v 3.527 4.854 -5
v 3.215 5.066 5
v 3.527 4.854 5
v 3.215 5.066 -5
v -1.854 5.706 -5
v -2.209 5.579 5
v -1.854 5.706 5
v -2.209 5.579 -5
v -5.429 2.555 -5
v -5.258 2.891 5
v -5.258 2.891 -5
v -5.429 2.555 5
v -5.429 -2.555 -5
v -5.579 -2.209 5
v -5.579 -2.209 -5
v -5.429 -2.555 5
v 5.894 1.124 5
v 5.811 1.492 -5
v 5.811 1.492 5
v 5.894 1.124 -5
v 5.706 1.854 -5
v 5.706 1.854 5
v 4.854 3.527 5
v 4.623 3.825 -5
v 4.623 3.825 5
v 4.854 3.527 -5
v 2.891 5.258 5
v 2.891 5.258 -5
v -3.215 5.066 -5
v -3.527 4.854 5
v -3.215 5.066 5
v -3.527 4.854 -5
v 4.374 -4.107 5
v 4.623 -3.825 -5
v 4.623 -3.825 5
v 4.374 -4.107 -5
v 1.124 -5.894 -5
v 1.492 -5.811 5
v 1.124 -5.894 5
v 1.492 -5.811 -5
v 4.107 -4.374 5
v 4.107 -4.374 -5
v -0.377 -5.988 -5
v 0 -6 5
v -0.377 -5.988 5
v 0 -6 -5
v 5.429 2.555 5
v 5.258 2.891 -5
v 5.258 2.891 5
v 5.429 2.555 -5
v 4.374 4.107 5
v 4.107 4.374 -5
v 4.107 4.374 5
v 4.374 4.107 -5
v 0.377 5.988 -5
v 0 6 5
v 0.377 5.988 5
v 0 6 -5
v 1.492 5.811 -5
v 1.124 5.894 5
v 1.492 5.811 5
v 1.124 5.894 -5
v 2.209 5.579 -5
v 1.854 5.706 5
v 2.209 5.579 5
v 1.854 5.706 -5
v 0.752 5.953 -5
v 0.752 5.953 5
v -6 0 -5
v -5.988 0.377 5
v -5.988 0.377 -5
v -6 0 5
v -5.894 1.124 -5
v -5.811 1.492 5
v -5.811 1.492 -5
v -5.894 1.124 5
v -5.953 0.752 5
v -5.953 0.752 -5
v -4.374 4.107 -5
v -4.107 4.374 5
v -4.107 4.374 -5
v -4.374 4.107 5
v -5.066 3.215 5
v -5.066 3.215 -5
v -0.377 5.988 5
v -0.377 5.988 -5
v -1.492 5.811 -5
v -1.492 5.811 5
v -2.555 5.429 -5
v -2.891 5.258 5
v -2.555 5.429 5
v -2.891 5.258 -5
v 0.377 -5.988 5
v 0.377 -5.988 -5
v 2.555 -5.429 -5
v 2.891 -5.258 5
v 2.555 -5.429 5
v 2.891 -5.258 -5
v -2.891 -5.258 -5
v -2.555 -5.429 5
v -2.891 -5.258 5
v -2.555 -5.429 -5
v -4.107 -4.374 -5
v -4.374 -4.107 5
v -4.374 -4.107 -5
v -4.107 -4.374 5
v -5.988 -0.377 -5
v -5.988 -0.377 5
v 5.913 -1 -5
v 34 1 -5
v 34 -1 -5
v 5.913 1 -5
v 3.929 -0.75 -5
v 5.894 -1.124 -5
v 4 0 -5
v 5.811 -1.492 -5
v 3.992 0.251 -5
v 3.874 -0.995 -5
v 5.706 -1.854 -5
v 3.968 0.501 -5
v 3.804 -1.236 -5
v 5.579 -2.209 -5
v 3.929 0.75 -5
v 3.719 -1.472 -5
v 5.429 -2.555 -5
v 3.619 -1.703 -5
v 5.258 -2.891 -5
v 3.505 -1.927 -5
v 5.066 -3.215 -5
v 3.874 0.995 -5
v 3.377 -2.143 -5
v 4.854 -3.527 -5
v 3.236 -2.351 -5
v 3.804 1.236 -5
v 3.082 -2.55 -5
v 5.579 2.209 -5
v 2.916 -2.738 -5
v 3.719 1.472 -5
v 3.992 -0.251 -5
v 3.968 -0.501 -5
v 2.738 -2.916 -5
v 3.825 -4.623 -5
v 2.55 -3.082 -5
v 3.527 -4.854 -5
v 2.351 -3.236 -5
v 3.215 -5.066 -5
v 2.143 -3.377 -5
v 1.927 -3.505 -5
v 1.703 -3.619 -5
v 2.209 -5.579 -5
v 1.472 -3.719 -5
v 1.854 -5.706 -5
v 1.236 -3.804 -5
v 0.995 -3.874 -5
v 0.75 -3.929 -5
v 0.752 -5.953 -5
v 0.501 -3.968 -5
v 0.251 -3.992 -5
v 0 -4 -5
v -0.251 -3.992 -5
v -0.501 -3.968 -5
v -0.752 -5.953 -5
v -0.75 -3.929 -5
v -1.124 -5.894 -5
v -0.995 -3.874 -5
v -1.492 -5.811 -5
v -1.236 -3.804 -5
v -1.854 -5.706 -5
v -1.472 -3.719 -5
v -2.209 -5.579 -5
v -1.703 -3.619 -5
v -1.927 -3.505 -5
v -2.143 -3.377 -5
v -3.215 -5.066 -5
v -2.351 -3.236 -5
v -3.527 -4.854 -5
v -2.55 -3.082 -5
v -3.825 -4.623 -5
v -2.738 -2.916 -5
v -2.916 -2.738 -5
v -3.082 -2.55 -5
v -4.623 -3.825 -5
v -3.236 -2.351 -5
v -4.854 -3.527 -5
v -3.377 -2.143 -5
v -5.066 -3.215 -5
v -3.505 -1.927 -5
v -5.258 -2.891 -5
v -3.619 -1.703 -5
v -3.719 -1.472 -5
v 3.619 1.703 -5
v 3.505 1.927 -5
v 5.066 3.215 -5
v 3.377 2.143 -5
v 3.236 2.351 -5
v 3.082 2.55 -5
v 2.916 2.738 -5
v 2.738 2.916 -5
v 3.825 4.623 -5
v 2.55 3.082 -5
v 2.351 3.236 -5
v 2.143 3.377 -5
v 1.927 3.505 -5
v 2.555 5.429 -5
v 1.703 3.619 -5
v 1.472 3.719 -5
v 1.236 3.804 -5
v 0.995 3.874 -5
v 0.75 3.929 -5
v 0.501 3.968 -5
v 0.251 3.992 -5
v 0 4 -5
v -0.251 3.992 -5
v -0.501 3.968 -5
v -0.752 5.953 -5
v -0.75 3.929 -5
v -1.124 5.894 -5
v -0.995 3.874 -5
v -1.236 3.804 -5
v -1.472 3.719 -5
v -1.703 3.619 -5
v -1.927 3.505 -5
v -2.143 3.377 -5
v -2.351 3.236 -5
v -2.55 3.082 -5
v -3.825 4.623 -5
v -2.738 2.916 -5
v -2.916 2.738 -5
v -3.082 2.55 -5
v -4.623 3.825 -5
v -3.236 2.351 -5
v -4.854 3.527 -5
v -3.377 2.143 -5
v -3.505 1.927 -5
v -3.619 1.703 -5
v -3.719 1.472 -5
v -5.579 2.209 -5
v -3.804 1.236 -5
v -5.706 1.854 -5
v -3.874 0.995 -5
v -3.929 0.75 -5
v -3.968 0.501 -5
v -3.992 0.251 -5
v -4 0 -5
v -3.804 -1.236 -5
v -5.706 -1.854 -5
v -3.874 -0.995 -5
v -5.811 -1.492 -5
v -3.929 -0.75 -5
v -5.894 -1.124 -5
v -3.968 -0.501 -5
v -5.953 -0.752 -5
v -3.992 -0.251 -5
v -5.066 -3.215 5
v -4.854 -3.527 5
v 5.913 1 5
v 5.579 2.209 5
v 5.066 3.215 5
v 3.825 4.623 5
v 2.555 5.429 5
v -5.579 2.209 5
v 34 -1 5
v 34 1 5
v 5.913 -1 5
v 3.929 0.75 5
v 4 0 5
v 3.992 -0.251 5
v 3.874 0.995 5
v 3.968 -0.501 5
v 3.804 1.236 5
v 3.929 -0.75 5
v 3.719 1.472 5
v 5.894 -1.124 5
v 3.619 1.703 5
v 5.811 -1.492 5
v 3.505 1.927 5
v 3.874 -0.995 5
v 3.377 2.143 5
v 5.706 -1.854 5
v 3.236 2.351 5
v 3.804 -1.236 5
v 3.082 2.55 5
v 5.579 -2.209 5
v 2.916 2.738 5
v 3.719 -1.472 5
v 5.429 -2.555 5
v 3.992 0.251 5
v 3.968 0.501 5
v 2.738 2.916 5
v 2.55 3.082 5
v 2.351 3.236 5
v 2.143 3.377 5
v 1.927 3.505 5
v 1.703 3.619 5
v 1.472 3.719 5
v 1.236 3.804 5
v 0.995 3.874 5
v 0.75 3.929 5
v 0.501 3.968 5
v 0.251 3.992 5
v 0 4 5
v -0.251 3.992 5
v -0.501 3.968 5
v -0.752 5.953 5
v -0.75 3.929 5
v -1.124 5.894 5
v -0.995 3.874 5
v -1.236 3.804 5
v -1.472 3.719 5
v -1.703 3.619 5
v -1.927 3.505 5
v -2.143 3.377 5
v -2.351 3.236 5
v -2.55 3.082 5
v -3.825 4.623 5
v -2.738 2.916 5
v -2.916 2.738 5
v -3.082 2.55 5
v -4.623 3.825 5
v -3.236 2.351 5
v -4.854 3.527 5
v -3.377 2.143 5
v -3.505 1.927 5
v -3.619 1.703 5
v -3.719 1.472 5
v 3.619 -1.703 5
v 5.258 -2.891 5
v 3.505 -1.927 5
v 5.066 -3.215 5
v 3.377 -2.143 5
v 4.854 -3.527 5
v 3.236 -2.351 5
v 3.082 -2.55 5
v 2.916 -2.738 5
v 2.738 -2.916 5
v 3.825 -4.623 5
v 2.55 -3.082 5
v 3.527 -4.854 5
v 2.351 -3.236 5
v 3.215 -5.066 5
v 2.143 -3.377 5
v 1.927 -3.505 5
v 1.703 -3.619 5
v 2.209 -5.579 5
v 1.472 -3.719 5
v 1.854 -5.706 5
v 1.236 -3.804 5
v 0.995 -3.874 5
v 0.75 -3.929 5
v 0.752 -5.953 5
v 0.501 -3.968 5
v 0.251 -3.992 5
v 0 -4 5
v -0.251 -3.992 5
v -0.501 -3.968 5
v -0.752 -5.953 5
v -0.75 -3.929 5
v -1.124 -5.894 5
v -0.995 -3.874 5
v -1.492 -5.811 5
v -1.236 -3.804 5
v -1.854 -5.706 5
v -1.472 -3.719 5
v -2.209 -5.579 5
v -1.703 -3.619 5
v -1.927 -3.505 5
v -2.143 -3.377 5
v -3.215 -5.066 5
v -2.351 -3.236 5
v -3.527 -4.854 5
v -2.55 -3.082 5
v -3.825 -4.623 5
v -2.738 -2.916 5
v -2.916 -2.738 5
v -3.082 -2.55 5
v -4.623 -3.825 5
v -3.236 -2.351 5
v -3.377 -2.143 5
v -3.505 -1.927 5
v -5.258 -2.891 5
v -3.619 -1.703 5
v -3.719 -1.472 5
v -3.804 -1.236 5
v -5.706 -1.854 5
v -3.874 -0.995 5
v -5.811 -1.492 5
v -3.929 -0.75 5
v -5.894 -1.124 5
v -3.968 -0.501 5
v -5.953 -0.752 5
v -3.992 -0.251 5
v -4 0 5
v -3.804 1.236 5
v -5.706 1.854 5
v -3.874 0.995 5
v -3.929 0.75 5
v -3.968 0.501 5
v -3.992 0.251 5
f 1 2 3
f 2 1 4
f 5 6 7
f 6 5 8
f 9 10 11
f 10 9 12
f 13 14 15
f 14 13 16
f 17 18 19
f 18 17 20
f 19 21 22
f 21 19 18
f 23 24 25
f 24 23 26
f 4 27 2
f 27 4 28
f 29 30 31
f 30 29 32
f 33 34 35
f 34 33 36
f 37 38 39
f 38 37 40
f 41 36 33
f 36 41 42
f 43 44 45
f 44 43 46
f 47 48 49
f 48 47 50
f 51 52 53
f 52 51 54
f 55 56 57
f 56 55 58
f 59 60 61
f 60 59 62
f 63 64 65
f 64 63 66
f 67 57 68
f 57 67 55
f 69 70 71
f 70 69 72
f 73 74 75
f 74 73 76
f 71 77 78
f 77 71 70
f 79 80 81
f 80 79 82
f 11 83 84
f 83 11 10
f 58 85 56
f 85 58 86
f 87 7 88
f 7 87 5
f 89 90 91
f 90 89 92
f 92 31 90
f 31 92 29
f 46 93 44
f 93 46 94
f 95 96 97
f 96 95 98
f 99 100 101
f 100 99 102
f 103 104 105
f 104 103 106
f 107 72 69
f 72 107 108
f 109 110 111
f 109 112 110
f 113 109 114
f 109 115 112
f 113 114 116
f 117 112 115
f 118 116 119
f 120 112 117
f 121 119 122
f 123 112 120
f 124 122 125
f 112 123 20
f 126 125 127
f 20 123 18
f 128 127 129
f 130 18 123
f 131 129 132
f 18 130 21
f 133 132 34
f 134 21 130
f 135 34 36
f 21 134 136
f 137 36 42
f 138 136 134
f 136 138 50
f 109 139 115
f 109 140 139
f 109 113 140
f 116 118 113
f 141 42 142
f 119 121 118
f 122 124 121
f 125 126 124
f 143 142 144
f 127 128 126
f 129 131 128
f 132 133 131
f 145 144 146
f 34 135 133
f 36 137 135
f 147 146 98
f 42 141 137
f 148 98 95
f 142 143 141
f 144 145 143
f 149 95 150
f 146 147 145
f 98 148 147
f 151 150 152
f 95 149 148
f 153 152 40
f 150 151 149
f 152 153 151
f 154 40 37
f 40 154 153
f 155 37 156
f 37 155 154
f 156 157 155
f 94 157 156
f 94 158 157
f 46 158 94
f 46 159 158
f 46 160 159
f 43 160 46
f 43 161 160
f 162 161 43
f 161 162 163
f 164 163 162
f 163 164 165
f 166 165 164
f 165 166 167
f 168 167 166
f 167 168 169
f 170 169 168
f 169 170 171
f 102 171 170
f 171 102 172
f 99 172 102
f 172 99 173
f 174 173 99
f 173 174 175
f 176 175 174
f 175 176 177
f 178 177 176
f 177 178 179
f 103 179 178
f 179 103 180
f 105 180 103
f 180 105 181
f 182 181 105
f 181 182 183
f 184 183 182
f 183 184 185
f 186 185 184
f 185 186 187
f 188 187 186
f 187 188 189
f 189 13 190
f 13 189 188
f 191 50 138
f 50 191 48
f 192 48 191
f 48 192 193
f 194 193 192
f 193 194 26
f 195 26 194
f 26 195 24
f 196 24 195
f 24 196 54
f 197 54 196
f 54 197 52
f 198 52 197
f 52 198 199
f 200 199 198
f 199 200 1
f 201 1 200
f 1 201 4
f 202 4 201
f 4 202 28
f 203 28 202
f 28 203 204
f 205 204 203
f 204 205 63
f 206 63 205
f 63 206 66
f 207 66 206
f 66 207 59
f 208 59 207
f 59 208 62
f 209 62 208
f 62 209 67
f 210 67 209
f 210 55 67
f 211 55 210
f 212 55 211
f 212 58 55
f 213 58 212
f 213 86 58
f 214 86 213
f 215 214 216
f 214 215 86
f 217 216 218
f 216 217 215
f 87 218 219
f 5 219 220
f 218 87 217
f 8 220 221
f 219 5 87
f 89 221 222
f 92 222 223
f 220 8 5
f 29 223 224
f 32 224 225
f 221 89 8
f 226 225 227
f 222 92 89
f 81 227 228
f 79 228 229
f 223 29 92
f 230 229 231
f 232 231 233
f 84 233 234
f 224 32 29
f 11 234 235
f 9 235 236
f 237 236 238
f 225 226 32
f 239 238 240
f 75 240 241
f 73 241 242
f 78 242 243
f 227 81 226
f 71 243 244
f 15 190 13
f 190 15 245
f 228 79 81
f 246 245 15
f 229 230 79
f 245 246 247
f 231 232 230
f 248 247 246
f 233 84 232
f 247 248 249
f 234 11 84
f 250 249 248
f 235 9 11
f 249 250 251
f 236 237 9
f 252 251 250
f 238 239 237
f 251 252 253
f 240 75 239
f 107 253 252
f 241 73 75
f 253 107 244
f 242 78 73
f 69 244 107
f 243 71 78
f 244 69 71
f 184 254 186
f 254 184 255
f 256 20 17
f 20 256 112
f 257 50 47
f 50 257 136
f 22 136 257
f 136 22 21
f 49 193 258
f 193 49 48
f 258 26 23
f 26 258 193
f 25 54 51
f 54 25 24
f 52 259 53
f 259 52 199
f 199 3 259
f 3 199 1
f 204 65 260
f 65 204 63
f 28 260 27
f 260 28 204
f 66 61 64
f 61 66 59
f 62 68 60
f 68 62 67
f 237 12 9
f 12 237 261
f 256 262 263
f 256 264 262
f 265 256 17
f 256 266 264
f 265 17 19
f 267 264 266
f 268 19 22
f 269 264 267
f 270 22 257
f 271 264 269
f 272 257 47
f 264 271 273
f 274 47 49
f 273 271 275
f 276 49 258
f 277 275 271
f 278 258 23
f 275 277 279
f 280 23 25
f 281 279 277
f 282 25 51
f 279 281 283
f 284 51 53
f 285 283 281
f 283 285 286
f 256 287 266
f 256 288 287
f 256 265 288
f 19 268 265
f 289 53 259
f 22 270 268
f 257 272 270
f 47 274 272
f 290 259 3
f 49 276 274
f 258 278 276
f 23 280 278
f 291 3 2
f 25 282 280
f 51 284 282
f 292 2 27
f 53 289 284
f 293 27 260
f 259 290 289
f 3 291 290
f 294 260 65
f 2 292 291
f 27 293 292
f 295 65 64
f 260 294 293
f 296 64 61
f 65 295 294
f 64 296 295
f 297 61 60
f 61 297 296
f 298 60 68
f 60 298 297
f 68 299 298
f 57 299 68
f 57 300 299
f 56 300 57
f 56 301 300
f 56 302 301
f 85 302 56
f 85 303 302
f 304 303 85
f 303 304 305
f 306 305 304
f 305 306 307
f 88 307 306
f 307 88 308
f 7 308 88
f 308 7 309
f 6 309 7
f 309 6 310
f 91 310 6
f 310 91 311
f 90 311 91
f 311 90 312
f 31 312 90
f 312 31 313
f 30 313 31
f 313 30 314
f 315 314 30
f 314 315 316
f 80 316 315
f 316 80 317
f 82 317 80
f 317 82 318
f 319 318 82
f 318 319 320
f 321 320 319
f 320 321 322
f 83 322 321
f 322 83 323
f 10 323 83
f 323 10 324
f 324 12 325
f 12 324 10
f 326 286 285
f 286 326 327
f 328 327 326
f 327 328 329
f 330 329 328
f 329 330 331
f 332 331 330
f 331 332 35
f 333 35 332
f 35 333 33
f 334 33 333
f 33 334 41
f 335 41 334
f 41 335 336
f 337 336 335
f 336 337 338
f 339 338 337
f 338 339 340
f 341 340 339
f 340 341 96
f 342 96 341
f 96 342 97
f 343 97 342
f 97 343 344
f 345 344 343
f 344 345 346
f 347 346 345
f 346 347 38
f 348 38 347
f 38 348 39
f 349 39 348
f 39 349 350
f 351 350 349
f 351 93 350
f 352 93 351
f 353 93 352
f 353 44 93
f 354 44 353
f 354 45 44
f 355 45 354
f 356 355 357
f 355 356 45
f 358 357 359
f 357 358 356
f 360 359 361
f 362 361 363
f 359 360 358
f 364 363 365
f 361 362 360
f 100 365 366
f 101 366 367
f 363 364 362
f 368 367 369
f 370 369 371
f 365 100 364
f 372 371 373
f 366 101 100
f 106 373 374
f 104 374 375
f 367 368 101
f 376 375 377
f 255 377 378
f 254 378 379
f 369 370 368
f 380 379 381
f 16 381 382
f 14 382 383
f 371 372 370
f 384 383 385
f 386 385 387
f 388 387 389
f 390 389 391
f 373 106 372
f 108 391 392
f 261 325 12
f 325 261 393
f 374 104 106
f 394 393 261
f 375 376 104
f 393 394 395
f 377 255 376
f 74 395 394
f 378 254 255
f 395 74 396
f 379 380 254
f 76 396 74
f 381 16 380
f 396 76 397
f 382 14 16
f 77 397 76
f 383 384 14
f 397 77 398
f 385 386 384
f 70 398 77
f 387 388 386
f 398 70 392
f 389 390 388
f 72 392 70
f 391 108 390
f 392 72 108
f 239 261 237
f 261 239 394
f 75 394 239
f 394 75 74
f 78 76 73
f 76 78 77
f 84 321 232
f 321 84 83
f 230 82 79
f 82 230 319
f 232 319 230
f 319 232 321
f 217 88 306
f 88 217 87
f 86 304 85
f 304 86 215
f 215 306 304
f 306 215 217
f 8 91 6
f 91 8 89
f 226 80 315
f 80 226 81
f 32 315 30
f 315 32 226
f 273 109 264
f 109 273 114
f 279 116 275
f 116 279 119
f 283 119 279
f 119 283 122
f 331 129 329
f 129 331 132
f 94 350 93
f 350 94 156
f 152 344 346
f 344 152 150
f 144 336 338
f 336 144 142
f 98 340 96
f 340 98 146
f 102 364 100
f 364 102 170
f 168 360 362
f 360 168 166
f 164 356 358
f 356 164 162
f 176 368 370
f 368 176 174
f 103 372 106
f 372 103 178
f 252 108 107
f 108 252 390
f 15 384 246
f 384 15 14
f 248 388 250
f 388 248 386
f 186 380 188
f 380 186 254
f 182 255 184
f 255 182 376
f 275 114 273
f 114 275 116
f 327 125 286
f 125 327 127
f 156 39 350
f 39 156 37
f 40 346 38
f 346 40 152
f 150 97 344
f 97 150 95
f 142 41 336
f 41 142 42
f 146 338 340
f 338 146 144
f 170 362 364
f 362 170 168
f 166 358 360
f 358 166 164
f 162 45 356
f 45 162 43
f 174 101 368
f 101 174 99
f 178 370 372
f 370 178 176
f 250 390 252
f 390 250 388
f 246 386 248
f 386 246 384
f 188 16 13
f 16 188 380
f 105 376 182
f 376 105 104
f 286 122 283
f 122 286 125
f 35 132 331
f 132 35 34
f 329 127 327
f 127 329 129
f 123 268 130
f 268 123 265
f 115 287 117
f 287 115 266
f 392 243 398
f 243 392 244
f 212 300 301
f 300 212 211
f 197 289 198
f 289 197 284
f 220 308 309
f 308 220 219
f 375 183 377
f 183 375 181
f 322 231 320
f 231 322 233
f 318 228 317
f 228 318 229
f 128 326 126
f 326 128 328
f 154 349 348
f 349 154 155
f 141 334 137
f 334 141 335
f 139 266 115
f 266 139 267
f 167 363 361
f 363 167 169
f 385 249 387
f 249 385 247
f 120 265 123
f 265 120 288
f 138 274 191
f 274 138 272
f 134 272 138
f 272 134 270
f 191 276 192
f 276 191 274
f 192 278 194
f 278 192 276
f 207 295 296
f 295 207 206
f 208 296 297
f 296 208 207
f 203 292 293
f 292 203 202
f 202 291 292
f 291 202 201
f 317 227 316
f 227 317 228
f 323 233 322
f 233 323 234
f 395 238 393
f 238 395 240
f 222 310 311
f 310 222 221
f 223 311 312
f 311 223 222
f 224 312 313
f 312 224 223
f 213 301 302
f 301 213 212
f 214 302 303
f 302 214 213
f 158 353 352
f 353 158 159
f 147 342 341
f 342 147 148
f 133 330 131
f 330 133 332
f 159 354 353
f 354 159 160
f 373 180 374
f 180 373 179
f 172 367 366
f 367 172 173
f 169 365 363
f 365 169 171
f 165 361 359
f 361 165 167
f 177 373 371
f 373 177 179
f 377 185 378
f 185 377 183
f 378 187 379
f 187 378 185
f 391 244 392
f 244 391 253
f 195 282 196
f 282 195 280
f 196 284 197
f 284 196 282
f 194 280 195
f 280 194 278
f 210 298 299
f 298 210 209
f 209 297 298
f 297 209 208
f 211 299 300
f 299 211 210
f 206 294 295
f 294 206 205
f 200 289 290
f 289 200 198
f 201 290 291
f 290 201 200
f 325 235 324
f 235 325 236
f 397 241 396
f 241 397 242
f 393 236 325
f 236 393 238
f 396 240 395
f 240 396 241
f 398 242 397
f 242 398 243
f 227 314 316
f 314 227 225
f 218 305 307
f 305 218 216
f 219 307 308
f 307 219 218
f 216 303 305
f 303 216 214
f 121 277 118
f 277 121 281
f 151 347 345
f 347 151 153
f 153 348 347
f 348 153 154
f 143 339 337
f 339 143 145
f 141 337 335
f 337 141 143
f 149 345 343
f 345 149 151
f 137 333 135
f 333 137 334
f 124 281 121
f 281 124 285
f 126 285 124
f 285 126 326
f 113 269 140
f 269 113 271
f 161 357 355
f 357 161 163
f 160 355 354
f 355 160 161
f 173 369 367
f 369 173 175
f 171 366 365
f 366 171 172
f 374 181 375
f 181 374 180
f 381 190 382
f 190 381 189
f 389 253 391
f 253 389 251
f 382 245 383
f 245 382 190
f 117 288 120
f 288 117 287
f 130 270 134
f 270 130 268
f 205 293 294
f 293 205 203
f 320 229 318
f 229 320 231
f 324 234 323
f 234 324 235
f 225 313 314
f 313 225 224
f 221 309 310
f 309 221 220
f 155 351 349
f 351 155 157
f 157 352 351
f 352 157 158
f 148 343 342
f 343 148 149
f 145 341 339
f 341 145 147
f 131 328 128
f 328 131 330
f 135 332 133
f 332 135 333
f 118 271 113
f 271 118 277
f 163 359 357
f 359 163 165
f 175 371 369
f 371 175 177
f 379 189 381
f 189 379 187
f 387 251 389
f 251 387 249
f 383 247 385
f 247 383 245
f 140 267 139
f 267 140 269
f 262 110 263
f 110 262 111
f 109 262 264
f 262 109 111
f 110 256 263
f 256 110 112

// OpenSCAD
$fn = 100;
union() {
    difference() {
        cylinder(10, 6, 6, center=true);
        cylinder(20, 4, 4, center=true);
    }
    translate([19, 0, 0]) cube([30, 2, 10], center=true);
}
